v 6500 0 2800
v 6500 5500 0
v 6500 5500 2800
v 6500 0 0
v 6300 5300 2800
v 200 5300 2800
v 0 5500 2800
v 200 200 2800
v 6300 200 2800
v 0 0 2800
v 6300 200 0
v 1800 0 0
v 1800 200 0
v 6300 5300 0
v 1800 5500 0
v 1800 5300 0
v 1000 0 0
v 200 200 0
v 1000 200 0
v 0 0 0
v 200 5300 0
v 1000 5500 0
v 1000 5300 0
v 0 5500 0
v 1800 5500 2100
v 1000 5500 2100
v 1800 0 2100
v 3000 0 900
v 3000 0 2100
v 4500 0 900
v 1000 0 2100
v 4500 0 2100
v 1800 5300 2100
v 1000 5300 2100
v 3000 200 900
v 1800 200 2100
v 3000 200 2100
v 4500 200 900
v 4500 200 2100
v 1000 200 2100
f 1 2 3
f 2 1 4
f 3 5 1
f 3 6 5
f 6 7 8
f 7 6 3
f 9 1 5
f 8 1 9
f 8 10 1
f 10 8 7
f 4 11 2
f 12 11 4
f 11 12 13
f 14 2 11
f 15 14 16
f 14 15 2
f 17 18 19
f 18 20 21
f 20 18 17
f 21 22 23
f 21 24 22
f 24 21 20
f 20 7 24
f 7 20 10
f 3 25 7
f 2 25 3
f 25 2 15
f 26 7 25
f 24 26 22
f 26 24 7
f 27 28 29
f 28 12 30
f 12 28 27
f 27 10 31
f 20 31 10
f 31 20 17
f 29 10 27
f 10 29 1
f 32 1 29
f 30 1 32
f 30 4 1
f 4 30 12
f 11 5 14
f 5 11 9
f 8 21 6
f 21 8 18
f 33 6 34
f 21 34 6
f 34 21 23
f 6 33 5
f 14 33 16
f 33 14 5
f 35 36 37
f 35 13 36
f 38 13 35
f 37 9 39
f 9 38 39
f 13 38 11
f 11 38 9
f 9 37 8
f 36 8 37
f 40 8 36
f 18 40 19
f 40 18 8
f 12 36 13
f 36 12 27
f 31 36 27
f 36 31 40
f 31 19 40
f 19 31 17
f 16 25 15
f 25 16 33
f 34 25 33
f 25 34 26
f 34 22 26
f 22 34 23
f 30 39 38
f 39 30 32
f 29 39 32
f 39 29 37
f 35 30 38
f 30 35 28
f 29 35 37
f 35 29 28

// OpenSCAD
// Concrete 3D Printed Room - Parametric Design
// All measurements in millimeters (mm)

// === ROOM DIMENSIONS ===
room_length = 6500;        // 5 meters
room_width = 5500;         // 4 meters  
wall_height = 2800;        // 2.8 meters (standard ceiling height)
wall_thickness = 200;      // 20 cm (typical concrete 3D print)

// === DOOR ===
door_width = 800;          // 90 cm (standard door)
door_height = 2100;        // 2.1 meters
door_position = 1000;      // 1 meter from left corner

// === WINDOW ===
window_width = 1500;       // 1.5 meters wide
window_height = 1200;      // 1.2 meters tall
window_position = 3000;    // 3 meters from left corner
window_sill_height = 900;  // 90 cm from floor

// === GEOMETRY ===
module room() {
    difference() {
        // Outer walls (solid block)
        cube([room_length, room_width, wall_height]);
        
        // Interior cavity (hollow out the room)
        translate([wall_thickness, wall_thickness, 0])
            cube([
                room_length - 2*wall_thickness,
                room_width - 2*wall_thickness,
                wall_height + 100  // Extra height to ensure clean cut
            ]);
        
        // Door opening (front wall - Y=0 side)
        translate([door_position, -10, 0])
            cube([door_width, wall_thickness + 20, door_height]);
        
        // Extra door opening (back wall)
        translate([door_position, room_width - wall_thickness - 10, 0])
            cube([door_width, wall_thickness + 20, door_height]);
        
        // Window opening (front wall)
        translate([window_position, -10, window_sill_height])
            cube([window_width, wall_thickness + 20, window_height]);
    }
}

// Generate the room
room();
